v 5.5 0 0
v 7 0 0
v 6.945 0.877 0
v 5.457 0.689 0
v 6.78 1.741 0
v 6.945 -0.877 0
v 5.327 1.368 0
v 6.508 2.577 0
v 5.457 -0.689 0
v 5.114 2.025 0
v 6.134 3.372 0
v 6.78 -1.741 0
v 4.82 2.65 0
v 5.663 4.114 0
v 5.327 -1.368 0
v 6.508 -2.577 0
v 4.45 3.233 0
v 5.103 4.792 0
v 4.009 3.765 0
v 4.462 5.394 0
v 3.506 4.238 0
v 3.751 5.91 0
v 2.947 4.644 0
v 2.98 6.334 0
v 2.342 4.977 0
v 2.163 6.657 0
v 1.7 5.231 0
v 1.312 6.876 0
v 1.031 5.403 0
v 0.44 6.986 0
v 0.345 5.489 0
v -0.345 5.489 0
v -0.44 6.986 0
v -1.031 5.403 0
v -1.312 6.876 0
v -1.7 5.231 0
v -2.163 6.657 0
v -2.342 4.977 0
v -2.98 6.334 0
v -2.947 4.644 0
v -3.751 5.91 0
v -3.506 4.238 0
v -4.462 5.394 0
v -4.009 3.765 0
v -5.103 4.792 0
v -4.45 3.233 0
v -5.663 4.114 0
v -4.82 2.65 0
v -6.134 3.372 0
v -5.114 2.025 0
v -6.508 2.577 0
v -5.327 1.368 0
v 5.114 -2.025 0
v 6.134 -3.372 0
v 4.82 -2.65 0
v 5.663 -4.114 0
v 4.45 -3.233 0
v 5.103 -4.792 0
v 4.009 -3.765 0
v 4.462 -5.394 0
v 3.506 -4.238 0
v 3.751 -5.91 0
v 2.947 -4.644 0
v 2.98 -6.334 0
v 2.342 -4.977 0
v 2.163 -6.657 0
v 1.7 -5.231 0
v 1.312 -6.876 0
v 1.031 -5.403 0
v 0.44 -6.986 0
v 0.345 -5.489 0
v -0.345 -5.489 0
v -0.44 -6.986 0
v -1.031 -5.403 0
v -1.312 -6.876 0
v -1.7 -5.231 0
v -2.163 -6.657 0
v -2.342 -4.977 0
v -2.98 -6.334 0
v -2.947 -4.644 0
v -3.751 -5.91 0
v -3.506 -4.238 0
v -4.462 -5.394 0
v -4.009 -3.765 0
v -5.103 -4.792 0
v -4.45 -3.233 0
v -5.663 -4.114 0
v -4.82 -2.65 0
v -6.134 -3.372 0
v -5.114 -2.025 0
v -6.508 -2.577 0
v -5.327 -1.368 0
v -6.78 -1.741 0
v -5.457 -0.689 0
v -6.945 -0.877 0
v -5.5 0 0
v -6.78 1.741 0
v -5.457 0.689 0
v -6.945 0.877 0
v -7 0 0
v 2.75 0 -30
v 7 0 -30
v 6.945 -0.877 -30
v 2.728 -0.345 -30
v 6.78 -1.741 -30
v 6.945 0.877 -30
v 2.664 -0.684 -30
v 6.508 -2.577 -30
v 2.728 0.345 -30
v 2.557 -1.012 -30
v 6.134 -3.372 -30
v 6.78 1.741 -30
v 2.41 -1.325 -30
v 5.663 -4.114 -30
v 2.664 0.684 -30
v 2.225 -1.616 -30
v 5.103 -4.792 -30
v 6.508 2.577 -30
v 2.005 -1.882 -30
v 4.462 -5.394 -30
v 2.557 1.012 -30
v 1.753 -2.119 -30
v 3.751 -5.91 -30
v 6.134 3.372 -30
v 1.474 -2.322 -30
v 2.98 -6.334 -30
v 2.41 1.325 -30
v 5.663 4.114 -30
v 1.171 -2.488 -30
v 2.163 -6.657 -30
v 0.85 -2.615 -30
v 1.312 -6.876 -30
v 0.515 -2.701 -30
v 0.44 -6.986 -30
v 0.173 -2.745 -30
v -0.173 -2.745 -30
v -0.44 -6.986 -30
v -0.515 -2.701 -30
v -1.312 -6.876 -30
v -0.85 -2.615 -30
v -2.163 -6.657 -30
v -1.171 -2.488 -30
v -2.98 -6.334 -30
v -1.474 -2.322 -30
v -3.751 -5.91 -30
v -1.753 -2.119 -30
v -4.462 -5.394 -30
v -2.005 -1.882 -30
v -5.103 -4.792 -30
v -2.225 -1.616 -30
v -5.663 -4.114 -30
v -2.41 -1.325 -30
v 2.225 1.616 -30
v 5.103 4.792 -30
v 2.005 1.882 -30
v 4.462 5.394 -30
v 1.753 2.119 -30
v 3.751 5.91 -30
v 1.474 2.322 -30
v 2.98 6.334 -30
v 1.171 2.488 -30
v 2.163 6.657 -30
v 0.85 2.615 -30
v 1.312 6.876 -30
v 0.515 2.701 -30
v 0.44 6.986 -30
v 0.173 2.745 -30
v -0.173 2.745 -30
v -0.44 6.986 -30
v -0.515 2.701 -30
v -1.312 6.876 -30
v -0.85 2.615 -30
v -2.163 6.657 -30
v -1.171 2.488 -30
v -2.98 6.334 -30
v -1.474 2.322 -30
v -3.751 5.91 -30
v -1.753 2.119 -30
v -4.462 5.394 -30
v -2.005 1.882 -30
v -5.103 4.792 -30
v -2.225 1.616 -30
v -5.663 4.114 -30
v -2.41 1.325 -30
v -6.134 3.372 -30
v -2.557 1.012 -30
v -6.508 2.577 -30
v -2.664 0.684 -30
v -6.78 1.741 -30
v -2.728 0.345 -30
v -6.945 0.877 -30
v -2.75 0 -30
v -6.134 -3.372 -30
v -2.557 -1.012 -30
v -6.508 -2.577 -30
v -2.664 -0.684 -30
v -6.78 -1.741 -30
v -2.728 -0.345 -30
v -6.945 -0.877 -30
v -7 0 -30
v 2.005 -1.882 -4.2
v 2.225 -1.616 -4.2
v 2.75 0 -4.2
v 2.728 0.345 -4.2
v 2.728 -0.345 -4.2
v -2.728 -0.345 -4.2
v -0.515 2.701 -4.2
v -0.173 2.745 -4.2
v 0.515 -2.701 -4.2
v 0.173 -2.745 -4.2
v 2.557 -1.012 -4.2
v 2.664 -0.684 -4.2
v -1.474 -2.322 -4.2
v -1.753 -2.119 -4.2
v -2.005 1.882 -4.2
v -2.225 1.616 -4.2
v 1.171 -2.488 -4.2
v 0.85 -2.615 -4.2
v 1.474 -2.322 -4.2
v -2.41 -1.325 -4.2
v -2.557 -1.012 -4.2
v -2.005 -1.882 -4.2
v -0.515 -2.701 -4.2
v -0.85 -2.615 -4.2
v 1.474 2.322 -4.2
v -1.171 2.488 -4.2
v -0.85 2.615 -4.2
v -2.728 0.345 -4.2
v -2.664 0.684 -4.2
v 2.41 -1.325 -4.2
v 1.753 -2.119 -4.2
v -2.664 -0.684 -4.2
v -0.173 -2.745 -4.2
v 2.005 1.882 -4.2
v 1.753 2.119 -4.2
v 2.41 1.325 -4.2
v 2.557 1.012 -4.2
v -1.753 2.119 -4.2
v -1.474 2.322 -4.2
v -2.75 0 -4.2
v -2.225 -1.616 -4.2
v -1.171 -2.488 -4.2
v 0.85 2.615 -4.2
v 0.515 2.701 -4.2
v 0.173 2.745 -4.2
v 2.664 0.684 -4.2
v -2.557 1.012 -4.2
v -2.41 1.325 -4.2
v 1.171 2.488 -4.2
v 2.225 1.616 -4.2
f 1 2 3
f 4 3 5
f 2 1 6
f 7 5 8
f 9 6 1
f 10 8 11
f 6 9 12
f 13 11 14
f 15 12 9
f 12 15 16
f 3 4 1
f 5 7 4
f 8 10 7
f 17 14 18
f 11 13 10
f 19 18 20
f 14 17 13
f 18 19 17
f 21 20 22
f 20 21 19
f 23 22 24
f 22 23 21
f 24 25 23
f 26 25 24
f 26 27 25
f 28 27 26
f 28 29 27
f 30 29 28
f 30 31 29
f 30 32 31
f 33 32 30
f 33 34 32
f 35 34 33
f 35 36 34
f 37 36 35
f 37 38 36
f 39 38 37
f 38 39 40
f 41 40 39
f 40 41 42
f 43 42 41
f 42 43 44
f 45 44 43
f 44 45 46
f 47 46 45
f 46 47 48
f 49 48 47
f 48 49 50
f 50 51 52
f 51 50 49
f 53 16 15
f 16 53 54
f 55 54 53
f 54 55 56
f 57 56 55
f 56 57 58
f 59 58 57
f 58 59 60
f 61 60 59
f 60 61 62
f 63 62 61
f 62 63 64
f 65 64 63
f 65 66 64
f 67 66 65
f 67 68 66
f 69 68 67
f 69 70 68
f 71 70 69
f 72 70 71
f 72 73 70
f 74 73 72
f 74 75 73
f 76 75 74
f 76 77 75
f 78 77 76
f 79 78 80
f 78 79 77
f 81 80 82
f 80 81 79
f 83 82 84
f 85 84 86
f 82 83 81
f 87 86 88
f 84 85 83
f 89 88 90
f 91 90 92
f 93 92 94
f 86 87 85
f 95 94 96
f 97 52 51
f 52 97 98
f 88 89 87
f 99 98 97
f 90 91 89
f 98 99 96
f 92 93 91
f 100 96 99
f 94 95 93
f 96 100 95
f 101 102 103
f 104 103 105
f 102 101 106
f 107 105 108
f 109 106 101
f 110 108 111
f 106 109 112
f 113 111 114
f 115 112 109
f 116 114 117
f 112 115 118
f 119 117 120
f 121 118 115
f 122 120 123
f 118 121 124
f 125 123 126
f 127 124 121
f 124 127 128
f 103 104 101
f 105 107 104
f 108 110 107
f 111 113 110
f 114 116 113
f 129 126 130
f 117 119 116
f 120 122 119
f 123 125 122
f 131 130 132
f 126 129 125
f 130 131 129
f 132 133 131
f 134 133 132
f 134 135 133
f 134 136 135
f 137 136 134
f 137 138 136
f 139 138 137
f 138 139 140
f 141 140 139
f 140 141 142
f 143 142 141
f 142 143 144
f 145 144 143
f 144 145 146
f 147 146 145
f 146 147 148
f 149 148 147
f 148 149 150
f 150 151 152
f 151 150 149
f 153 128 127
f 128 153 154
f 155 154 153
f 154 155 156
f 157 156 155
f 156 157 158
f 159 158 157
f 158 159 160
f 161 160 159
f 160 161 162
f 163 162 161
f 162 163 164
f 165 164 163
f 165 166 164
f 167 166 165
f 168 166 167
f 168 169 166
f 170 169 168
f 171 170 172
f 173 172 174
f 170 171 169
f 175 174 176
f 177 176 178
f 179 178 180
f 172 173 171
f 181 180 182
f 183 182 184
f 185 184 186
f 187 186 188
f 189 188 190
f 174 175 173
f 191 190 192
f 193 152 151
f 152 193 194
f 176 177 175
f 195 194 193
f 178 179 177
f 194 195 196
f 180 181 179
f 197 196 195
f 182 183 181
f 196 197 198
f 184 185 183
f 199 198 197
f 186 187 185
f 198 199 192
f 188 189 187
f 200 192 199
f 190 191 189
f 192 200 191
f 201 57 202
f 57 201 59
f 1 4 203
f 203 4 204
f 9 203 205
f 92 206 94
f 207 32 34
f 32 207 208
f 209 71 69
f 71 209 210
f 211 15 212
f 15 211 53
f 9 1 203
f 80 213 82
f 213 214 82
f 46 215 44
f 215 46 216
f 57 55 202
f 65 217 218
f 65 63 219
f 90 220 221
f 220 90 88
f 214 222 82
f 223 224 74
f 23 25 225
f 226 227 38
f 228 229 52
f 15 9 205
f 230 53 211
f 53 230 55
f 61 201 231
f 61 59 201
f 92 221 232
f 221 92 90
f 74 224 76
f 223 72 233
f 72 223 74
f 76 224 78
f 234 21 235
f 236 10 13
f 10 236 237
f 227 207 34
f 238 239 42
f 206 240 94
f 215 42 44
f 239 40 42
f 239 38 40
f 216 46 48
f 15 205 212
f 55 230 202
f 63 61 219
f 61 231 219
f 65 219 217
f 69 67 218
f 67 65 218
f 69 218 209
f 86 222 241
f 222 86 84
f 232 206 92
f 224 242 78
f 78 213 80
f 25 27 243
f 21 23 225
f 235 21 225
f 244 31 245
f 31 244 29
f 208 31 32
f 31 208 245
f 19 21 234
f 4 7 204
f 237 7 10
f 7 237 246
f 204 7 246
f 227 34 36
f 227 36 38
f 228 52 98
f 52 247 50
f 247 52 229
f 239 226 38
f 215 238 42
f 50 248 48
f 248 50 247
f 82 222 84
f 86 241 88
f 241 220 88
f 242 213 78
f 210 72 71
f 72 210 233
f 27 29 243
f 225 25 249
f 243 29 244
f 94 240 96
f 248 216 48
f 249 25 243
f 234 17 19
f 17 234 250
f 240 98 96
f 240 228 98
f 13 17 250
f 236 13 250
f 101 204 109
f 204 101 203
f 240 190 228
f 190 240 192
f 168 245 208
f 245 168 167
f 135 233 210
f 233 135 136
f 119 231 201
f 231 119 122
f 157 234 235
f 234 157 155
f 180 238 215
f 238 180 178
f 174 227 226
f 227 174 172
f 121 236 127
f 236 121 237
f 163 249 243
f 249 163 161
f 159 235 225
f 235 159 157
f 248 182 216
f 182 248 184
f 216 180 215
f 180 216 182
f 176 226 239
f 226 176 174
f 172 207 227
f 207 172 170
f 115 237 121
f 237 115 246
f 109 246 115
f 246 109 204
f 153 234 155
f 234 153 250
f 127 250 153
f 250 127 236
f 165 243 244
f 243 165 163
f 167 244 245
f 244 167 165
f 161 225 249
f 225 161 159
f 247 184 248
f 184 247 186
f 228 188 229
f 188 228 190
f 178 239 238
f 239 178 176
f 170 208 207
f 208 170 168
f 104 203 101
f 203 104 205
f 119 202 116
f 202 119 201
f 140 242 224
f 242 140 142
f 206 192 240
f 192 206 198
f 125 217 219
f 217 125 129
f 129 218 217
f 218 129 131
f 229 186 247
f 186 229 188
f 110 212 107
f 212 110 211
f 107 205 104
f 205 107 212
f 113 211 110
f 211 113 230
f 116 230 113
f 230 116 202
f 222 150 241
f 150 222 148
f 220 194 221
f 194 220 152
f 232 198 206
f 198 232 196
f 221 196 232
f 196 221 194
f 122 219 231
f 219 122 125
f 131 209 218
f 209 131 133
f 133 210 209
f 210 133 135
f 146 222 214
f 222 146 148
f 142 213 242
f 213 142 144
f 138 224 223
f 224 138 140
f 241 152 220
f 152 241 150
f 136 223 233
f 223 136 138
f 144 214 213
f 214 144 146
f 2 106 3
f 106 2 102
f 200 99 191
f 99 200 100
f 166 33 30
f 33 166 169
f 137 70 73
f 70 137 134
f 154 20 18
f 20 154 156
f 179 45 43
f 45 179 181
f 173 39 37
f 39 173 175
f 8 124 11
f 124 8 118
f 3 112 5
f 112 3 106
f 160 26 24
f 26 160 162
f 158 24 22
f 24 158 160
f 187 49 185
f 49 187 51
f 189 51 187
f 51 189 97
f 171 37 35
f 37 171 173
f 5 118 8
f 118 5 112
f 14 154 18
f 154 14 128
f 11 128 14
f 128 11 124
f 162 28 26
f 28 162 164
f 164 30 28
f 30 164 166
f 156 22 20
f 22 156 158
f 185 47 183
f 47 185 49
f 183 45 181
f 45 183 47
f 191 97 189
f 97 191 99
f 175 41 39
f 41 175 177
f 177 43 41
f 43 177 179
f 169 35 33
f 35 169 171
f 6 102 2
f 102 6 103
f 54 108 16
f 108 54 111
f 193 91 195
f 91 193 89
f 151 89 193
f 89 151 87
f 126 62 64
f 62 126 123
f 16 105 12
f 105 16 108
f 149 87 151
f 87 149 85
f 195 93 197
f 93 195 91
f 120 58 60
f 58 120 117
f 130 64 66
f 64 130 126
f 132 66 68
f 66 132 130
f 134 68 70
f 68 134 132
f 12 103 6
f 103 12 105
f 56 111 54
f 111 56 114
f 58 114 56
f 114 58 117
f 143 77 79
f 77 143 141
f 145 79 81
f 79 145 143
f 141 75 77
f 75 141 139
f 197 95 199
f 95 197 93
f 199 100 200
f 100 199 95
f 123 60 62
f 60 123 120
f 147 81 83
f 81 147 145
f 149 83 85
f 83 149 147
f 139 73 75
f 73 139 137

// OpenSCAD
$fn = 50;


difference() {
	union() {
		translate(v = [0, 0, -30.0000000000]) {
			cylinder(h = 30, r = 7.0000000000);
		}
		cylinder(h = 0, r = 16.0000000000);
	}
	union() {
		translate(v = [0, 0, 0]) {
			rotate(a = [0, 0, 0]) {
				difference() {
					union() {
						#translate(v = [0, 0, -30.0000000000]) {
							cylinder(h = 30, r = 2.2500000000);
						}
						#translate(v = [0, 0, -4.2000000000]) {
							cylinder(h = 4.2000000000, r = 7.0000000000, r1 = 2.7500000000, r2 = 5.5000000000);
						}
						#translate(v = [0, 0, -30.0000000000]) {
							cylinder(h = 30, r = 2.7500000000);
						}
						#translate(v = [0, 0, -30.0000000000]) {
							cylinder(h = 30, r = 2.2500000000);
						}
					}
					union();
				}
			}
		}
	}
}
